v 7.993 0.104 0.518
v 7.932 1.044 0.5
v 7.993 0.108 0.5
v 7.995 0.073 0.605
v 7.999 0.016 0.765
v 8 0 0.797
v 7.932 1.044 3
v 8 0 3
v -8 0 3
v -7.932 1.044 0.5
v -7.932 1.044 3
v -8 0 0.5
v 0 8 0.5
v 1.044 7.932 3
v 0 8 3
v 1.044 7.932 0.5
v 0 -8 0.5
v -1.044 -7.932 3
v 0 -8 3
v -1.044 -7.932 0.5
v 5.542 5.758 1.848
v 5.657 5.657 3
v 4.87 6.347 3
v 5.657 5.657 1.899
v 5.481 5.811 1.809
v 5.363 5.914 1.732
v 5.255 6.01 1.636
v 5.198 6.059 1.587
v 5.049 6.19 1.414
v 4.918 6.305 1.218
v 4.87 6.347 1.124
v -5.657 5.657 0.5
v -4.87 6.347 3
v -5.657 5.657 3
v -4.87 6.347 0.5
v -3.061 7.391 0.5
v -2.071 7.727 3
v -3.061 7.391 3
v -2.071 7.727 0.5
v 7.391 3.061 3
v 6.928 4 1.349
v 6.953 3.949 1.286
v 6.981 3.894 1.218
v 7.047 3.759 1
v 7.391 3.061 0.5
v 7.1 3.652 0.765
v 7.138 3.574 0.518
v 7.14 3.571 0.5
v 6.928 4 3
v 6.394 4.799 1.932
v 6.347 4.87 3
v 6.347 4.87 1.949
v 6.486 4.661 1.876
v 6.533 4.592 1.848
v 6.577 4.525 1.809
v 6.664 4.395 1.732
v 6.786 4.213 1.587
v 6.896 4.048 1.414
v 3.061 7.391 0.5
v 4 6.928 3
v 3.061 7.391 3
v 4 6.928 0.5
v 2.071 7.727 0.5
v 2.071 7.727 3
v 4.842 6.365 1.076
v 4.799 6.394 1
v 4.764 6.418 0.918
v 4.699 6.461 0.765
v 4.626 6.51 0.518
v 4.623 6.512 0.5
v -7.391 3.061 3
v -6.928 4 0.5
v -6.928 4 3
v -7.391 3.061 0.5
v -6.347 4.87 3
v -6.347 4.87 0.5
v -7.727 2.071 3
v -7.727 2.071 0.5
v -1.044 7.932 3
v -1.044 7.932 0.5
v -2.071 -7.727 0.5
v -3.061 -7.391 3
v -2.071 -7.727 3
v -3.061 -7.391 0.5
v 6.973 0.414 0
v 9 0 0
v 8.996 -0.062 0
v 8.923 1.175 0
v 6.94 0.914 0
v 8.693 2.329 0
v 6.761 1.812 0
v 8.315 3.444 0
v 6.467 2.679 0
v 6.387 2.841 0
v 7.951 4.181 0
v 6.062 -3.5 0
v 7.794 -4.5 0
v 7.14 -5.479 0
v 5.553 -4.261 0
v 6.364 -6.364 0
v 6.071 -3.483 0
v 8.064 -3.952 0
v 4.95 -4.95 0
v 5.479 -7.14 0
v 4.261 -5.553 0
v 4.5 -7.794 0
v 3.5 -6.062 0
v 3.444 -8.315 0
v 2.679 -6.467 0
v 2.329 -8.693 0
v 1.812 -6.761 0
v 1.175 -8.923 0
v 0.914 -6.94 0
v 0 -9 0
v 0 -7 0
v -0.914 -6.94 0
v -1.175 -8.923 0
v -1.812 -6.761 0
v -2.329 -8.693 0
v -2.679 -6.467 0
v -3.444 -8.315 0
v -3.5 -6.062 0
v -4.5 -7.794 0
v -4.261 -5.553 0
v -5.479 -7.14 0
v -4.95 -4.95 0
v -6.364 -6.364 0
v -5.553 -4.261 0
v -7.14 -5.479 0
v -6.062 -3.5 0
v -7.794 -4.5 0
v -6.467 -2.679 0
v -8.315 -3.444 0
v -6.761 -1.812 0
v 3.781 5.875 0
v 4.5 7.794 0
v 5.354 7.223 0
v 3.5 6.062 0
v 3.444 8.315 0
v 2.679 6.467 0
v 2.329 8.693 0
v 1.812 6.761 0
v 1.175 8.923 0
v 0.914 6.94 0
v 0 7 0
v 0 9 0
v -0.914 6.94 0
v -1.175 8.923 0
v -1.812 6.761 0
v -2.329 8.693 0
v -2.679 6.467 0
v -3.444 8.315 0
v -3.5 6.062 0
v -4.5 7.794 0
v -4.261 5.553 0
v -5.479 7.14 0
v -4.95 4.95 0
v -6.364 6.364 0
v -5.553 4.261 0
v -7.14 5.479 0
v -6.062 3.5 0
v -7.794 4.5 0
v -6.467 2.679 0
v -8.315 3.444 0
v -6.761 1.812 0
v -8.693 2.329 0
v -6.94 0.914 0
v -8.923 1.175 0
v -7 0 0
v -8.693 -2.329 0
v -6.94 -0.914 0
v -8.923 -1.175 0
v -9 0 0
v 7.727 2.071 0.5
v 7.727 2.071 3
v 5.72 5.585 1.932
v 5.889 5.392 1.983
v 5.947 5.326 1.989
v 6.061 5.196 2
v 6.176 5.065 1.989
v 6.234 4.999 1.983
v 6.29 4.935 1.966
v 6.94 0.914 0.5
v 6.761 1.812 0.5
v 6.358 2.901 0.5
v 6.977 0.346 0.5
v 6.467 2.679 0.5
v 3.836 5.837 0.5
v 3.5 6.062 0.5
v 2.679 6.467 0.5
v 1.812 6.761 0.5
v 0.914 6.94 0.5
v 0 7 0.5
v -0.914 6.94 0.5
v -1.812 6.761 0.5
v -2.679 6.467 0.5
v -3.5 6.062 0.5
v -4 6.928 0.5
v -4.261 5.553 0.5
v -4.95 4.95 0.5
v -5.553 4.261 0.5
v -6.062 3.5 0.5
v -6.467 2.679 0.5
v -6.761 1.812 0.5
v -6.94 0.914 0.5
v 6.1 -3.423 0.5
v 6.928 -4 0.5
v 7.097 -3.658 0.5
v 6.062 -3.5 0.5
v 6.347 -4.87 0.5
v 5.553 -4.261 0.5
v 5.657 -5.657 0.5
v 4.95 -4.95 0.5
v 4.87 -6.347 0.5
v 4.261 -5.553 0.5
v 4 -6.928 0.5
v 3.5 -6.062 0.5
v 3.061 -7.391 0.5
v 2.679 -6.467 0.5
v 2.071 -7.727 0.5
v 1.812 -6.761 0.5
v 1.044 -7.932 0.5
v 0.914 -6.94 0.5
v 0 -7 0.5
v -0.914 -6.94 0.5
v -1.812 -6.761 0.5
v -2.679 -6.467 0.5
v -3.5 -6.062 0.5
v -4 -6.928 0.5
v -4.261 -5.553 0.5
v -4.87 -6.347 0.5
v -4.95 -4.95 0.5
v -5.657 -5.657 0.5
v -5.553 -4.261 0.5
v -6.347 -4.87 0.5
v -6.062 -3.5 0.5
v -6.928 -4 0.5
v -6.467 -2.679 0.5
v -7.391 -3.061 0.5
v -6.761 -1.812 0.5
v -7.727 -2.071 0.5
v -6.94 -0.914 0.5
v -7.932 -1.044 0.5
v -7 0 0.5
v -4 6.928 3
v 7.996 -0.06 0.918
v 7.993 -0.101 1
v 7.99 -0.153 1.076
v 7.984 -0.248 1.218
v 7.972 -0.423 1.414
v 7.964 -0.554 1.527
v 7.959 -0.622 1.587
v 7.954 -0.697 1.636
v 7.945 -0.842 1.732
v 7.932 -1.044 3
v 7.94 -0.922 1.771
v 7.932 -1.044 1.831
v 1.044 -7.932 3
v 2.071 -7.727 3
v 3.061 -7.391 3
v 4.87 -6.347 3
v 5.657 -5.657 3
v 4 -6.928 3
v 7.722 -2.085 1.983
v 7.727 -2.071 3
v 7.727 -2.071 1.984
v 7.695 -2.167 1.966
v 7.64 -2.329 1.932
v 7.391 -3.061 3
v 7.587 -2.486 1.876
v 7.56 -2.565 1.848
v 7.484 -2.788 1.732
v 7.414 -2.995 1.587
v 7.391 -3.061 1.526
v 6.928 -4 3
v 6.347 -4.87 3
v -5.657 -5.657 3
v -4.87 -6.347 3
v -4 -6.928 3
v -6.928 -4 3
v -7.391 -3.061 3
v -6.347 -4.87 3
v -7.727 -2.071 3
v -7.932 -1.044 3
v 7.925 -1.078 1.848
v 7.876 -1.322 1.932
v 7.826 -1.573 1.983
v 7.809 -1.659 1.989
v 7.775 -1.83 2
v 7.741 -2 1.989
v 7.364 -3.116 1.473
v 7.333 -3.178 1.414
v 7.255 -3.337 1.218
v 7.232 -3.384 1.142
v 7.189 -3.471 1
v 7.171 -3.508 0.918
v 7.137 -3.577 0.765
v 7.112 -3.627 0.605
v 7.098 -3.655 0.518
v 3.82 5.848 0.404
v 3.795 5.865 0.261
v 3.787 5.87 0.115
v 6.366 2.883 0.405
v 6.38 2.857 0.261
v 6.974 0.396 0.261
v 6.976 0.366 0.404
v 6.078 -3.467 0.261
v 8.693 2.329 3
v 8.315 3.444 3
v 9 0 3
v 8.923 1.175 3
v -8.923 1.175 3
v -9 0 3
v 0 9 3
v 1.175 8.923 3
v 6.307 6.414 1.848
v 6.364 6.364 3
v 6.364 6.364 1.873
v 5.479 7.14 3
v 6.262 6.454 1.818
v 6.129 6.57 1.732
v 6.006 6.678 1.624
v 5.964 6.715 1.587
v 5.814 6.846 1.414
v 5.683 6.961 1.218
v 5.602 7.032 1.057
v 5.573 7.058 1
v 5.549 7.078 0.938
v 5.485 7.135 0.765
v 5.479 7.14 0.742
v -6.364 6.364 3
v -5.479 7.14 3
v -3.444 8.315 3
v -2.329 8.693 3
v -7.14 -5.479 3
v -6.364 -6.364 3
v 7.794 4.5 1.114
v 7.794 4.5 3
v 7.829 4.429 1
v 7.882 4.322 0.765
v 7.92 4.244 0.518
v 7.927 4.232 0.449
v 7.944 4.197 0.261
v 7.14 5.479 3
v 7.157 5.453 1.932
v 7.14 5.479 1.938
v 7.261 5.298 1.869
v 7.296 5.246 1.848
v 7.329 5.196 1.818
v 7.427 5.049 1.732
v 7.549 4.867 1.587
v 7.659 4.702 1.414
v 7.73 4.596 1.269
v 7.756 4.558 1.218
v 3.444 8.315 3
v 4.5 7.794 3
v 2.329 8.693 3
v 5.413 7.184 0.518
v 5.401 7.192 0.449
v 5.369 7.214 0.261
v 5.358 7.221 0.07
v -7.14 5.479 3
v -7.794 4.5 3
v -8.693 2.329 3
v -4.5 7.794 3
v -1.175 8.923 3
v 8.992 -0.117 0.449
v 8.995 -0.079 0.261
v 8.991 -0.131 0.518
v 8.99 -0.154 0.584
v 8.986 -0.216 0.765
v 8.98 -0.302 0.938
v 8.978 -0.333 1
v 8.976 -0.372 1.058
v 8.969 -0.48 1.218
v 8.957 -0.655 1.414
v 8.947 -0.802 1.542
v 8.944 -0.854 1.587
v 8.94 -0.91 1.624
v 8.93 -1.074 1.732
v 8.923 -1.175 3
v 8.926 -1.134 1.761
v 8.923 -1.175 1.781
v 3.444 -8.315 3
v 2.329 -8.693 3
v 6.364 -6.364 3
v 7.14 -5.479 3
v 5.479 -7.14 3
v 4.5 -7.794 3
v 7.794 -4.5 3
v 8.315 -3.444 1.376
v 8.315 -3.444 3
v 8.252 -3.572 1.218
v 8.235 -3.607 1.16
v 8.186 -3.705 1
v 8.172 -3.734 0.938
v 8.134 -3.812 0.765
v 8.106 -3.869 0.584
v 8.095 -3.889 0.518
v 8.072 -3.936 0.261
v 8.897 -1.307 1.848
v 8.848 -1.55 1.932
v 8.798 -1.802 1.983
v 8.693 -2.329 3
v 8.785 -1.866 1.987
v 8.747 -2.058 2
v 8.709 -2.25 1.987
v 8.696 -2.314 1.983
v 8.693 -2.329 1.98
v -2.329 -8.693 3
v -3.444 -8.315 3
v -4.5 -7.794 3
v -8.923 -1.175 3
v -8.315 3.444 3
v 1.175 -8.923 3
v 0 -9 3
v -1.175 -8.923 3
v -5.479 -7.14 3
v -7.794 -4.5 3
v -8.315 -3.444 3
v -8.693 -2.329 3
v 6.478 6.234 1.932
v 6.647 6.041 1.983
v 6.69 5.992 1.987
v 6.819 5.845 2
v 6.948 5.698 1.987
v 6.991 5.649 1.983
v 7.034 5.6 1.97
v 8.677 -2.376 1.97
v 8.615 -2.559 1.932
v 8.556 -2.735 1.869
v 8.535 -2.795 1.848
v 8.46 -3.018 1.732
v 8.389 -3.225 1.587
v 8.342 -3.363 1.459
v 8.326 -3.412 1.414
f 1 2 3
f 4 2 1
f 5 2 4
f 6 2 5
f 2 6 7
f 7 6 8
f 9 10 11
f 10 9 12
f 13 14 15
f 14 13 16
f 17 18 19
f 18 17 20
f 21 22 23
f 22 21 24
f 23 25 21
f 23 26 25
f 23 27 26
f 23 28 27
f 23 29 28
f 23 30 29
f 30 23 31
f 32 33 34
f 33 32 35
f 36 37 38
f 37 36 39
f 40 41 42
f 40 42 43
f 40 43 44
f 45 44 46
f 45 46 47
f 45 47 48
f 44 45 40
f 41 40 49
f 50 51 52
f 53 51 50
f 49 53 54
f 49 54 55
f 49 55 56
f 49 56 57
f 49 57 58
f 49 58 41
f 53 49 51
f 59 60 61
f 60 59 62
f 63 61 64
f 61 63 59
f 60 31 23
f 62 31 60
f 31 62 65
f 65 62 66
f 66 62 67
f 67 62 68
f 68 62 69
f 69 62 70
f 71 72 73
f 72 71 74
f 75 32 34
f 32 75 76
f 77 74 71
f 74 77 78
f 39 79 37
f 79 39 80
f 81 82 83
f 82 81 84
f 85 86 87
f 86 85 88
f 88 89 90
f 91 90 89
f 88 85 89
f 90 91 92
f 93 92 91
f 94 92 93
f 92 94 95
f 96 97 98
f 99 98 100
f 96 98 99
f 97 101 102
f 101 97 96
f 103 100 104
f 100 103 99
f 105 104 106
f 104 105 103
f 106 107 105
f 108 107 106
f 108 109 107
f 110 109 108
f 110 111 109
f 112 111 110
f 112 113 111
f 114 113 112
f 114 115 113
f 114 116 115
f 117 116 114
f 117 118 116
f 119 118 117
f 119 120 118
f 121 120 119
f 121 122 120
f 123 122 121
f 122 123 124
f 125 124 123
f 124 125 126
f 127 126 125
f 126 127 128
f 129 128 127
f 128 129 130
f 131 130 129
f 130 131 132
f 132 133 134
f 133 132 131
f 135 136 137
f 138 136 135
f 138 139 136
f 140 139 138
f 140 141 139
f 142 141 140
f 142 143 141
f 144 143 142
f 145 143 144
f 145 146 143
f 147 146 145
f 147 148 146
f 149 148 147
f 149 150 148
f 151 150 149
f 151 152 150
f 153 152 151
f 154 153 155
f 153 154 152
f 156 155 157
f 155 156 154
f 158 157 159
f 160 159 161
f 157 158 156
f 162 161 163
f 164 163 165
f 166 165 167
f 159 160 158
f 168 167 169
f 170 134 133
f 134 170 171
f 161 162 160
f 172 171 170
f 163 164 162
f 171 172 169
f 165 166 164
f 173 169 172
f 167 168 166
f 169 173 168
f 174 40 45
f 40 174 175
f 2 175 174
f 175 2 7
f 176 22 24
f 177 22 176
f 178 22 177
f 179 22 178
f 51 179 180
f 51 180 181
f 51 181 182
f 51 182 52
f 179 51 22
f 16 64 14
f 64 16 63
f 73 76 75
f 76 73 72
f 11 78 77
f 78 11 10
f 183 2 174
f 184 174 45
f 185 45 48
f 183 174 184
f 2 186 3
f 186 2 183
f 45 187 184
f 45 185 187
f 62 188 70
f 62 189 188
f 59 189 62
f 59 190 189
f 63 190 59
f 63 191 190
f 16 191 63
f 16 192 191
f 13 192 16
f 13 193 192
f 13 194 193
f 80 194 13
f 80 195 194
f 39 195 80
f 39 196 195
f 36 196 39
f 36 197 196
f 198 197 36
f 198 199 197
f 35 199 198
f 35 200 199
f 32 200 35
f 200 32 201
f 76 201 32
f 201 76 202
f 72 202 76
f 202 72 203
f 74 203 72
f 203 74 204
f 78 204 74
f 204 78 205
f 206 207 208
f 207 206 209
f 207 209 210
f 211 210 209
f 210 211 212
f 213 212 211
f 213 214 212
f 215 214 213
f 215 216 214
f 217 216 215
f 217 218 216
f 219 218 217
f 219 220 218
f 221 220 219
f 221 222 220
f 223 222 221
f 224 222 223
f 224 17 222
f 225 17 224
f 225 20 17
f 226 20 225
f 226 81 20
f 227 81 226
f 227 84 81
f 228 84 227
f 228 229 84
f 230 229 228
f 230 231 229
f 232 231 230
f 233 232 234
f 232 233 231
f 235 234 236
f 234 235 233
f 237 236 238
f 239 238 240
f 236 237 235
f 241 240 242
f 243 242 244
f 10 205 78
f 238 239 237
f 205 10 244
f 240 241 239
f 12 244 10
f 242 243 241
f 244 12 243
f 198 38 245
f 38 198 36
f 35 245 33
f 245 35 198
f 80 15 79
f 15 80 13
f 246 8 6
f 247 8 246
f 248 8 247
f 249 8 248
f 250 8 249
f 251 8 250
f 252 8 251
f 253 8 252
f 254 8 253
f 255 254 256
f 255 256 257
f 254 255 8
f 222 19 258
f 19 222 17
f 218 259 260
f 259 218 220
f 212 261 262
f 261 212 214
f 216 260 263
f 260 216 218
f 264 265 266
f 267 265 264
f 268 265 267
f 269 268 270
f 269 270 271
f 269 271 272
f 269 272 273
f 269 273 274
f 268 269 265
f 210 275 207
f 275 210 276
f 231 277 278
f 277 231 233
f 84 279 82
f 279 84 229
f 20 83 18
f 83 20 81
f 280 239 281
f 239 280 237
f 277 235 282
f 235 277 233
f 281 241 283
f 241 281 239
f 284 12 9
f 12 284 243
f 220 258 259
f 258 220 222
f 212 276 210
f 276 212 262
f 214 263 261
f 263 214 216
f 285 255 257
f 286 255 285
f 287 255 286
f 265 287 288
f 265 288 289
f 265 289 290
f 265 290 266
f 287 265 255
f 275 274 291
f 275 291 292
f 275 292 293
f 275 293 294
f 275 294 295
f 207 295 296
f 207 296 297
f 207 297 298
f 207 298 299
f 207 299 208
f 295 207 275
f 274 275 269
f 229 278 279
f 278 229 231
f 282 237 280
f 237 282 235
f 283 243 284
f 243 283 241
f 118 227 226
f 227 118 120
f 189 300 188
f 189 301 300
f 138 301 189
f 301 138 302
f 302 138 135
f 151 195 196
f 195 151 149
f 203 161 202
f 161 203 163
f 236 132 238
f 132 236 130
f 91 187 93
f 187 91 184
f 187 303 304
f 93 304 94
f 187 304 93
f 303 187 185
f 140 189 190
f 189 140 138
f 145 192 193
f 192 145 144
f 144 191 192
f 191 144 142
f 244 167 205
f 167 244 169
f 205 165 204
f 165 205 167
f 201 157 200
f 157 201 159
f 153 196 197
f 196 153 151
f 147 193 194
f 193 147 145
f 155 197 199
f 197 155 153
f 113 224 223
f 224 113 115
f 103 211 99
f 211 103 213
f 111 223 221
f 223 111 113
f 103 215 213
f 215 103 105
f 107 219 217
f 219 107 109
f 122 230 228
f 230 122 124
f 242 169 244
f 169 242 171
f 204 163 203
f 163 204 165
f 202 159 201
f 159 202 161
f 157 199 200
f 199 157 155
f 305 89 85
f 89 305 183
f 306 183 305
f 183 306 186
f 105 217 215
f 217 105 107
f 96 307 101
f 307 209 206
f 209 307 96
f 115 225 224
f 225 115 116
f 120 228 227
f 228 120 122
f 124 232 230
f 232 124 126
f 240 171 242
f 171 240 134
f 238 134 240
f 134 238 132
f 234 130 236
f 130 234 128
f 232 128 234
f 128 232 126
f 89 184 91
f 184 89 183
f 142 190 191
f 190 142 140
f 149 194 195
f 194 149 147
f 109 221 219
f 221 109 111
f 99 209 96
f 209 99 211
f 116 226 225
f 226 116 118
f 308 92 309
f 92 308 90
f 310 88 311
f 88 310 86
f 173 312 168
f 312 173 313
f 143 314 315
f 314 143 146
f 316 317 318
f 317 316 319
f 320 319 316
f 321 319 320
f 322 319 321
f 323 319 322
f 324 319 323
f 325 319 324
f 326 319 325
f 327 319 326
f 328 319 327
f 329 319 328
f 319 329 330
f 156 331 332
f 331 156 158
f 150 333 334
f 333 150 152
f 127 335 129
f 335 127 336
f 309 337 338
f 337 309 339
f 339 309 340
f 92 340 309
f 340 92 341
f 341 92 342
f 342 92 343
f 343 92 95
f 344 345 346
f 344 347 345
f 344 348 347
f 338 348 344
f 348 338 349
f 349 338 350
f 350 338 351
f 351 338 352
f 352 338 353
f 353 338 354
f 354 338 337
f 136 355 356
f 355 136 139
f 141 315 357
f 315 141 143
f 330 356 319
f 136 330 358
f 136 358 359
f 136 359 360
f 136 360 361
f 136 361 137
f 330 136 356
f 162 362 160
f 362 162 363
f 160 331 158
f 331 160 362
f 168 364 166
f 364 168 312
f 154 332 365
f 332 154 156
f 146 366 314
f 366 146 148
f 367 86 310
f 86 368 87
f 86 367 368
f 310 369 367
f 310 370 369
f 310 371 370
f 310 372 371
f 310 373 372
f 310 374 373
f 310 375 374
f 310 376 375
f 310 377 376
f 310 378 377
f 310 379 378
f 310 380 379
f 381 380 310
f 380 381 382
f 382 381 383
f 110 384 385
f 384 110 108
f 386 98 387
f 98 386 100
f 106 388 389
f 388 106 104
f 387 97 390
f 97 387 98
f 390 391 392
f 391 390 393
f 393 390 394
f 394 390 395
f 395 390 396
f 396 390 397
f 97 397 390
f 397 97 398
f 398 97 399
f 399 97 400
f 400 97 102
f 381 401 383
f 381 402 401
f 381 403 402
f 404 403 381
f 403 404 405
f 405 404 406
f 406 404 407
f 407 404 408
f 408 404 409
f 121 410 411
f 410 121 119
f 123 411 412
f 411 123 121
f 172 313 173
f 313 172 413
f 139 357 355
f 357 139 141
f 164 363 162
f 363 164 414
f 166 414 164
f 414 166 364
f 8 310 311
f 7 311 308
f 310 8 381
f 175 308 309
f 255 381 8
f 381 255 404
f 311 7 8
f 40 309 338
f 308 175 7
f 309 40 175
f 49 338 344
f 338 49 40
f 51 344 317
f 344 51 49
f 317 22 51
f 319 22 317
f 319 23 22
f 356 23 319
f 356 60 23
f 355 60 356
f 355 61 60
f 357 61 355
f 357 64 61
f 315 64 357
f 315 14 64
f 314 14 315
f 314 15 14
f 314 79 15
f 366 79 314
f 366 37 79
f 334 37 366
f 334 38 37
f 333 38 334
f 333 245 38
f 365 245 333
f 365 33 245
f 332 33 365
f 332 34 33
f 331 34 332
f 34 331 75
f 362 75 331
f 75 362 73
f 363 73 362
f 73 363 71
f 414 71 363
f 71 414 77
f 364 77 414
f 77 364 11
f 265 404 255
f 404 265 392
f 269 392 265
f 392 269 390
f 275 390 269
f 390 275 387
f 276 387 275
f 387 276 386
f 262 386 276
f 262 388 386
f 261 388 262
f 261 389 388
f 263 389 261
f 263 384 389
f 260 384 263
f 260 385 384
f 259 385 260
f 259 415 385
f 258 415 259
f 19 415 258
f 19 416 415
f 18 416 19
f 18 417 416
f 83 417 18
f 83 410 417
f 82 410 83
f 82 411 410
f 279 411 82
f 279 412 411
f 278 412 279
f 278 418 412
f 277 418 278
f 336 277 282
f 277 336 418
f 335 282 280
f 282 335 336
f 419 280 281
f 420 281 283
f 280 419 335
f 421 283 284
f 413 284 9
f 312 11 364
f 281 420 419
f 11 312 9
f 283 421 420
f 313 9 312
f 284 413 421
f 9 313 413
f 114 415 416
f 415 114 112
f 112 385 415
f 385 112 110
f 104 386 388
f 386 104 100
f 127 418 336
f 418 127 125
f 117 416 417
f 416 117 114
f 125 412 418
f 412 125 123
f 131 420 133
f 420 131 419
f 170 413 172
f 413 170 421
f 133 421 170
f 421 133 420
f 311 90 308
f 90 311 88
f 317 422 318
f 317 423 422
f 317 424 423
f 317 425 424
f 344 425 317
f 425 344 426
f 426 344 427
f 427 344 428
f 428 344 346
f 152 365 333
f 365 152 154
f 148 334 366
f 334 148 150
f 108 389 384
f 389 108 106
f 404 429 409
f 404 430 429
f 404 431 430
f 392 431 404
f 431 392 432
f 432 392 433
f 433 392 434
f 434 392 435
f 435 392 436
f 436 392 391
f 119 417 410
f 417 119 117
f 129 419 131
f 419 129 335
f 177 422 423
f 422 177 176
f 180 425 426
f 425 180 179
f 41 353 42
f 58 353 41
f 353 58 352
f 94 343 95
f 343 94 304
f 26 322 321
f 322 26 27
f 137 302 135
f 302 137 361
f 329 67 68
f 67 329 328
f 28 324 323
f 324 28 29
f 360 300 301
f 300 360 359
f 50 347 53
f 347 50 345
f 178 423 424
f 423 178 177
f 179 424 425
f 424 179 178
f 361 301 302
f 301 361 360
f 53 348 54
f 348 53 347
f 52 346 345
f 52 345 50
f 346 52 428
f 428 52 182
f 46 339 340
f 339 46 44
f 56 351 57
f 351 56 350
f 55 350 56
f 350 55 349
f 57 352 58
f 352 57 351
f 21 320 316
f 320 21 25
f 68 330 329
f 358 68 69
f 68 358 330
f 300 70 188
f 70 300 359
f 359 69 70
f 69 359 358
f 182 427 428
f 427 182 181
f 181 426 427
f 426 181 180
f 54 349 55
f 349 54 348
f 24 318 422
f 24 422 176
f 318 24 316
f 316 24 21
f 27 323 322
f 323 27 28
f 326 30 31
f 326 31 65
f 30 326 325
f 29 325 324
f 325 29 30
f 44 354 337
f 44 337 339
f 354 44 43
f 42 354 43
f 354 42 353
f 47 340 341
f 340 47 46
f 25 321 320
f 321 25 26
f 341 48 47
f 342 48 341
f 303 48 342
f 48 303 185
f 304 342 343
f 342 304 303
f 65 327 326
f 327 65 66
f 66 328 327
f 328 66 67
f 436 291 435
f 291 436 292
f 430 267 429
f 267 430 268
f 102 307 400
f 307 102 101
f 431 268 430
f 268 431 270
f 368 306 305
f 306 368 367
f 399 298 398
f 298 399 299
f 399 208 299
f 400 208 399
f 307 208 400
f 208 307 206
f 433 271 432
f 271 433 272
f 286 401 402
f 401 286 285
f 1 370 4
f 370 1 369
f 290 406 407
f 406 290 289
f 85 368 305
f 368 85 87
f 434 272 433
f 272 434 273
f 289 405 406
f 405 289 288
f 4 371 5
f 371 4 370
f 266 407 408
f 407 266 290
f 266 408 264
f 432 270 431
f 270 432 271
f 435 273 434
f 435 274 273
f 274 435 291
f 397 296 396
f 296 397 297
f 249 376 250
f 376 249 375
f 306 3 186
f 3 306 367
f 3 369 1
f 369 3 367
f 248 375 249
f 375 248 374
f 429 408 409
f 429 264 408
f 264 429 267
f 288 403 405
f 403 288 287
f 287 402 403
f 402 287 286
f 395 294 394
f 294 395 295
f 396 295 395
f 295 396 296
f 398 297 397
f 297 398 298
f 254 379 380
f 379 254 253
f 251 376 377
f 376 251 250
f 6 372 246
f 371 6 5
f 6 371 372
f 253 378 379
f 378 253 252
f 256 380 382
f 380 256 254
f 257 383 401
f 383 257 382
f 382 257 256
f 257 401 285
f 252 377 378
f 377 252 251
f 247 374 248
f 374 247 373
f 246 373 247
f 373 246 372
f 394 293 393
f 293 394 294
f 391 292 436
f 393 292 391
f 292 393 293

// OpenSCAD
// file: ../build_environments.scad
// build_environments.scad: modules to build level sections
//

module pool(diameter=10.0, wall_height=2.0, step_width=3.0, connections=[])
{
    difference() {
        union() {
        difference() {
            cylinder(h=0.5,r1=diameter+step_width,r2=diameter+step_width,$fn=48);
            translate([0,0,-0.1])
                cylinder(h=0.7,r1=diameter,r2=diameter,$fn=48);
        }
        difference() {
            cylinder(h=wall_height,r1=diameter+step_width+1.0,r2=diameter+step_width+1.0,$fn=48);
            translate([0,0,-0.1])
                cylinder(h=wall_height+0.2,r1=diameter+step_width,r2=diameter+step_width,$fn=48);
        }
        }
    
        for (c = connections)
        {
            rotate([0,90,0]) {
                angle = atan2(c[1],c[0]);
                rotate([-angle,0,0]) {
                    cylinder(h=diameter+5.0,r1=c[2],r2=c[2],$fn=48);
                }
            }
        }
    }
}

module straight(length=10.0, width=2.0, dy1=0.0, dy2=0.0, dz=0.0)
{
    dims = [0, 0, 0, 0, 0, (dz/length)];
    matrix = [
        [ 1, dims[0], dims[1], 0 ],
        [ dims[2], 1, dims[4], 0 ],
        [ dims[5], dims[3], 1, 0 ],
        [ 0, 0, 0, 1 ]
    ];
    multmatrix(matrix)
    difference() {
        translate([dy1,0,0])
        union() {
            rotate([0,90,0]) {
                difference() {
                    cylinder(h=(length-dy1-dy2),r1=width+1.0,r2=width+1.0,$fn=24);
                    translate([0,0,-0.1])
                        cylinder(h=(length-dy1-dy2+0.2),r1=width,r2=width,$fn=24);
                }
                difference() {
                    cylinder(h=1.0,r1=width+2.0,r2=width+2.0,$fn=24);
                    translate([0,0,-0.1])
                        cylinder(h=1.2,r1=width,r2=width,$fn=24);
                }
                translate([0,0,(length-dy1-dy2)-1.0]) {
                    difference() {
                        cylinder(h=1.0,r1=width+2.0,r2=width+2.0,$fn=24);
                        translate([0,0,-0.1])
                            cylinder(h=1.2,r1=width,r2=width,$fn=24);
                    }
                }
            }
        }
        translate([0,0,-(2*width+4.0)/2])
            cube([3*length,3*length,2*width+4.0],center=true);
    }
}

module curve(p0=[0,0], center=[0,0], dir=1, angle=0.0, width=2.0)
{
    radius = sqrt((p0[0]-center[0])*(p0[0]-center[0]) + (p0[1]-center[1])*(p0[1]-center[1]));
    if (dir == 0) {
        difference() {
            rotate([0,0,-90])
            difference() {
                rotate_extrude(angle = angle, convexity = 10, $fn=32)
                    translate([radius, 0, 0])
                        circle(r = width+1.0,$fn=24);
                rotate([0,0,-1.0])
                    rotate_extrude(angle = angle+2.0, convexity = 10, $fn=32)
                        translate([radius, 0, 0])
                            circle(r = width,$fn=24);
            }
            translate([0,0,-(2*width+4.0)/2])
                cube([5*radius,5*radius,2*width+4.0],center=true);
        }
    }
    else {
        difference() {
            rotate([0,0,90])
            difference() {
                rotate_extrude(angle = -angle, convexity = 10, $fn=32)
                    translate([radius, 0, 0])
                        circle(r = width+1.0,$fn=24);
                rotate([0,0,1.0])
                    rotate_extrude(angle = -angle-2.0, convexity = 10, $fn=32)
                        translate([radius, 0, 0])
                            circle(r = width,$fn=24);
            }
            translate([0,0,-(2*width+4.0)/2])
                cube([5*radius,5*radius,2*width+4.0],center=true);
        }
    }

}

// test pool
//pool(diameter=12.0000, wall_height=3.0000, step_width=3.0000, connections=[[0.0000,-26.0000,2.0000], [23.6074,0.0000,2.0000]]);

// test straight, slope
//straight(length=26.0000, width=2.0000, dy1=11.8322, dy2=6.7082, dz=0.0000);
//straight(length=29.1549, width=12.0000, dy1=0.0000, dy2=0.0000, dz=-15.0000);

// test curve
//curve(p0=[23.6074, 0.0000], center=[23.6074, 5.0000], dir=0, angle=60.1011, width=2.0000);
//curve(p0=[33.6426, 12.4219], center=[37.9771, 9.9295], dir=1, angle=120.4627, width=2.0000);
// main file
use <../build_environments.scad>;
pool(diameter=7.0000, wall_height=3.0000, step_width=1.0000, connections=[[14.0000,12.0000,2.0000], [17.0000,-4.0000,2.0000]]);
